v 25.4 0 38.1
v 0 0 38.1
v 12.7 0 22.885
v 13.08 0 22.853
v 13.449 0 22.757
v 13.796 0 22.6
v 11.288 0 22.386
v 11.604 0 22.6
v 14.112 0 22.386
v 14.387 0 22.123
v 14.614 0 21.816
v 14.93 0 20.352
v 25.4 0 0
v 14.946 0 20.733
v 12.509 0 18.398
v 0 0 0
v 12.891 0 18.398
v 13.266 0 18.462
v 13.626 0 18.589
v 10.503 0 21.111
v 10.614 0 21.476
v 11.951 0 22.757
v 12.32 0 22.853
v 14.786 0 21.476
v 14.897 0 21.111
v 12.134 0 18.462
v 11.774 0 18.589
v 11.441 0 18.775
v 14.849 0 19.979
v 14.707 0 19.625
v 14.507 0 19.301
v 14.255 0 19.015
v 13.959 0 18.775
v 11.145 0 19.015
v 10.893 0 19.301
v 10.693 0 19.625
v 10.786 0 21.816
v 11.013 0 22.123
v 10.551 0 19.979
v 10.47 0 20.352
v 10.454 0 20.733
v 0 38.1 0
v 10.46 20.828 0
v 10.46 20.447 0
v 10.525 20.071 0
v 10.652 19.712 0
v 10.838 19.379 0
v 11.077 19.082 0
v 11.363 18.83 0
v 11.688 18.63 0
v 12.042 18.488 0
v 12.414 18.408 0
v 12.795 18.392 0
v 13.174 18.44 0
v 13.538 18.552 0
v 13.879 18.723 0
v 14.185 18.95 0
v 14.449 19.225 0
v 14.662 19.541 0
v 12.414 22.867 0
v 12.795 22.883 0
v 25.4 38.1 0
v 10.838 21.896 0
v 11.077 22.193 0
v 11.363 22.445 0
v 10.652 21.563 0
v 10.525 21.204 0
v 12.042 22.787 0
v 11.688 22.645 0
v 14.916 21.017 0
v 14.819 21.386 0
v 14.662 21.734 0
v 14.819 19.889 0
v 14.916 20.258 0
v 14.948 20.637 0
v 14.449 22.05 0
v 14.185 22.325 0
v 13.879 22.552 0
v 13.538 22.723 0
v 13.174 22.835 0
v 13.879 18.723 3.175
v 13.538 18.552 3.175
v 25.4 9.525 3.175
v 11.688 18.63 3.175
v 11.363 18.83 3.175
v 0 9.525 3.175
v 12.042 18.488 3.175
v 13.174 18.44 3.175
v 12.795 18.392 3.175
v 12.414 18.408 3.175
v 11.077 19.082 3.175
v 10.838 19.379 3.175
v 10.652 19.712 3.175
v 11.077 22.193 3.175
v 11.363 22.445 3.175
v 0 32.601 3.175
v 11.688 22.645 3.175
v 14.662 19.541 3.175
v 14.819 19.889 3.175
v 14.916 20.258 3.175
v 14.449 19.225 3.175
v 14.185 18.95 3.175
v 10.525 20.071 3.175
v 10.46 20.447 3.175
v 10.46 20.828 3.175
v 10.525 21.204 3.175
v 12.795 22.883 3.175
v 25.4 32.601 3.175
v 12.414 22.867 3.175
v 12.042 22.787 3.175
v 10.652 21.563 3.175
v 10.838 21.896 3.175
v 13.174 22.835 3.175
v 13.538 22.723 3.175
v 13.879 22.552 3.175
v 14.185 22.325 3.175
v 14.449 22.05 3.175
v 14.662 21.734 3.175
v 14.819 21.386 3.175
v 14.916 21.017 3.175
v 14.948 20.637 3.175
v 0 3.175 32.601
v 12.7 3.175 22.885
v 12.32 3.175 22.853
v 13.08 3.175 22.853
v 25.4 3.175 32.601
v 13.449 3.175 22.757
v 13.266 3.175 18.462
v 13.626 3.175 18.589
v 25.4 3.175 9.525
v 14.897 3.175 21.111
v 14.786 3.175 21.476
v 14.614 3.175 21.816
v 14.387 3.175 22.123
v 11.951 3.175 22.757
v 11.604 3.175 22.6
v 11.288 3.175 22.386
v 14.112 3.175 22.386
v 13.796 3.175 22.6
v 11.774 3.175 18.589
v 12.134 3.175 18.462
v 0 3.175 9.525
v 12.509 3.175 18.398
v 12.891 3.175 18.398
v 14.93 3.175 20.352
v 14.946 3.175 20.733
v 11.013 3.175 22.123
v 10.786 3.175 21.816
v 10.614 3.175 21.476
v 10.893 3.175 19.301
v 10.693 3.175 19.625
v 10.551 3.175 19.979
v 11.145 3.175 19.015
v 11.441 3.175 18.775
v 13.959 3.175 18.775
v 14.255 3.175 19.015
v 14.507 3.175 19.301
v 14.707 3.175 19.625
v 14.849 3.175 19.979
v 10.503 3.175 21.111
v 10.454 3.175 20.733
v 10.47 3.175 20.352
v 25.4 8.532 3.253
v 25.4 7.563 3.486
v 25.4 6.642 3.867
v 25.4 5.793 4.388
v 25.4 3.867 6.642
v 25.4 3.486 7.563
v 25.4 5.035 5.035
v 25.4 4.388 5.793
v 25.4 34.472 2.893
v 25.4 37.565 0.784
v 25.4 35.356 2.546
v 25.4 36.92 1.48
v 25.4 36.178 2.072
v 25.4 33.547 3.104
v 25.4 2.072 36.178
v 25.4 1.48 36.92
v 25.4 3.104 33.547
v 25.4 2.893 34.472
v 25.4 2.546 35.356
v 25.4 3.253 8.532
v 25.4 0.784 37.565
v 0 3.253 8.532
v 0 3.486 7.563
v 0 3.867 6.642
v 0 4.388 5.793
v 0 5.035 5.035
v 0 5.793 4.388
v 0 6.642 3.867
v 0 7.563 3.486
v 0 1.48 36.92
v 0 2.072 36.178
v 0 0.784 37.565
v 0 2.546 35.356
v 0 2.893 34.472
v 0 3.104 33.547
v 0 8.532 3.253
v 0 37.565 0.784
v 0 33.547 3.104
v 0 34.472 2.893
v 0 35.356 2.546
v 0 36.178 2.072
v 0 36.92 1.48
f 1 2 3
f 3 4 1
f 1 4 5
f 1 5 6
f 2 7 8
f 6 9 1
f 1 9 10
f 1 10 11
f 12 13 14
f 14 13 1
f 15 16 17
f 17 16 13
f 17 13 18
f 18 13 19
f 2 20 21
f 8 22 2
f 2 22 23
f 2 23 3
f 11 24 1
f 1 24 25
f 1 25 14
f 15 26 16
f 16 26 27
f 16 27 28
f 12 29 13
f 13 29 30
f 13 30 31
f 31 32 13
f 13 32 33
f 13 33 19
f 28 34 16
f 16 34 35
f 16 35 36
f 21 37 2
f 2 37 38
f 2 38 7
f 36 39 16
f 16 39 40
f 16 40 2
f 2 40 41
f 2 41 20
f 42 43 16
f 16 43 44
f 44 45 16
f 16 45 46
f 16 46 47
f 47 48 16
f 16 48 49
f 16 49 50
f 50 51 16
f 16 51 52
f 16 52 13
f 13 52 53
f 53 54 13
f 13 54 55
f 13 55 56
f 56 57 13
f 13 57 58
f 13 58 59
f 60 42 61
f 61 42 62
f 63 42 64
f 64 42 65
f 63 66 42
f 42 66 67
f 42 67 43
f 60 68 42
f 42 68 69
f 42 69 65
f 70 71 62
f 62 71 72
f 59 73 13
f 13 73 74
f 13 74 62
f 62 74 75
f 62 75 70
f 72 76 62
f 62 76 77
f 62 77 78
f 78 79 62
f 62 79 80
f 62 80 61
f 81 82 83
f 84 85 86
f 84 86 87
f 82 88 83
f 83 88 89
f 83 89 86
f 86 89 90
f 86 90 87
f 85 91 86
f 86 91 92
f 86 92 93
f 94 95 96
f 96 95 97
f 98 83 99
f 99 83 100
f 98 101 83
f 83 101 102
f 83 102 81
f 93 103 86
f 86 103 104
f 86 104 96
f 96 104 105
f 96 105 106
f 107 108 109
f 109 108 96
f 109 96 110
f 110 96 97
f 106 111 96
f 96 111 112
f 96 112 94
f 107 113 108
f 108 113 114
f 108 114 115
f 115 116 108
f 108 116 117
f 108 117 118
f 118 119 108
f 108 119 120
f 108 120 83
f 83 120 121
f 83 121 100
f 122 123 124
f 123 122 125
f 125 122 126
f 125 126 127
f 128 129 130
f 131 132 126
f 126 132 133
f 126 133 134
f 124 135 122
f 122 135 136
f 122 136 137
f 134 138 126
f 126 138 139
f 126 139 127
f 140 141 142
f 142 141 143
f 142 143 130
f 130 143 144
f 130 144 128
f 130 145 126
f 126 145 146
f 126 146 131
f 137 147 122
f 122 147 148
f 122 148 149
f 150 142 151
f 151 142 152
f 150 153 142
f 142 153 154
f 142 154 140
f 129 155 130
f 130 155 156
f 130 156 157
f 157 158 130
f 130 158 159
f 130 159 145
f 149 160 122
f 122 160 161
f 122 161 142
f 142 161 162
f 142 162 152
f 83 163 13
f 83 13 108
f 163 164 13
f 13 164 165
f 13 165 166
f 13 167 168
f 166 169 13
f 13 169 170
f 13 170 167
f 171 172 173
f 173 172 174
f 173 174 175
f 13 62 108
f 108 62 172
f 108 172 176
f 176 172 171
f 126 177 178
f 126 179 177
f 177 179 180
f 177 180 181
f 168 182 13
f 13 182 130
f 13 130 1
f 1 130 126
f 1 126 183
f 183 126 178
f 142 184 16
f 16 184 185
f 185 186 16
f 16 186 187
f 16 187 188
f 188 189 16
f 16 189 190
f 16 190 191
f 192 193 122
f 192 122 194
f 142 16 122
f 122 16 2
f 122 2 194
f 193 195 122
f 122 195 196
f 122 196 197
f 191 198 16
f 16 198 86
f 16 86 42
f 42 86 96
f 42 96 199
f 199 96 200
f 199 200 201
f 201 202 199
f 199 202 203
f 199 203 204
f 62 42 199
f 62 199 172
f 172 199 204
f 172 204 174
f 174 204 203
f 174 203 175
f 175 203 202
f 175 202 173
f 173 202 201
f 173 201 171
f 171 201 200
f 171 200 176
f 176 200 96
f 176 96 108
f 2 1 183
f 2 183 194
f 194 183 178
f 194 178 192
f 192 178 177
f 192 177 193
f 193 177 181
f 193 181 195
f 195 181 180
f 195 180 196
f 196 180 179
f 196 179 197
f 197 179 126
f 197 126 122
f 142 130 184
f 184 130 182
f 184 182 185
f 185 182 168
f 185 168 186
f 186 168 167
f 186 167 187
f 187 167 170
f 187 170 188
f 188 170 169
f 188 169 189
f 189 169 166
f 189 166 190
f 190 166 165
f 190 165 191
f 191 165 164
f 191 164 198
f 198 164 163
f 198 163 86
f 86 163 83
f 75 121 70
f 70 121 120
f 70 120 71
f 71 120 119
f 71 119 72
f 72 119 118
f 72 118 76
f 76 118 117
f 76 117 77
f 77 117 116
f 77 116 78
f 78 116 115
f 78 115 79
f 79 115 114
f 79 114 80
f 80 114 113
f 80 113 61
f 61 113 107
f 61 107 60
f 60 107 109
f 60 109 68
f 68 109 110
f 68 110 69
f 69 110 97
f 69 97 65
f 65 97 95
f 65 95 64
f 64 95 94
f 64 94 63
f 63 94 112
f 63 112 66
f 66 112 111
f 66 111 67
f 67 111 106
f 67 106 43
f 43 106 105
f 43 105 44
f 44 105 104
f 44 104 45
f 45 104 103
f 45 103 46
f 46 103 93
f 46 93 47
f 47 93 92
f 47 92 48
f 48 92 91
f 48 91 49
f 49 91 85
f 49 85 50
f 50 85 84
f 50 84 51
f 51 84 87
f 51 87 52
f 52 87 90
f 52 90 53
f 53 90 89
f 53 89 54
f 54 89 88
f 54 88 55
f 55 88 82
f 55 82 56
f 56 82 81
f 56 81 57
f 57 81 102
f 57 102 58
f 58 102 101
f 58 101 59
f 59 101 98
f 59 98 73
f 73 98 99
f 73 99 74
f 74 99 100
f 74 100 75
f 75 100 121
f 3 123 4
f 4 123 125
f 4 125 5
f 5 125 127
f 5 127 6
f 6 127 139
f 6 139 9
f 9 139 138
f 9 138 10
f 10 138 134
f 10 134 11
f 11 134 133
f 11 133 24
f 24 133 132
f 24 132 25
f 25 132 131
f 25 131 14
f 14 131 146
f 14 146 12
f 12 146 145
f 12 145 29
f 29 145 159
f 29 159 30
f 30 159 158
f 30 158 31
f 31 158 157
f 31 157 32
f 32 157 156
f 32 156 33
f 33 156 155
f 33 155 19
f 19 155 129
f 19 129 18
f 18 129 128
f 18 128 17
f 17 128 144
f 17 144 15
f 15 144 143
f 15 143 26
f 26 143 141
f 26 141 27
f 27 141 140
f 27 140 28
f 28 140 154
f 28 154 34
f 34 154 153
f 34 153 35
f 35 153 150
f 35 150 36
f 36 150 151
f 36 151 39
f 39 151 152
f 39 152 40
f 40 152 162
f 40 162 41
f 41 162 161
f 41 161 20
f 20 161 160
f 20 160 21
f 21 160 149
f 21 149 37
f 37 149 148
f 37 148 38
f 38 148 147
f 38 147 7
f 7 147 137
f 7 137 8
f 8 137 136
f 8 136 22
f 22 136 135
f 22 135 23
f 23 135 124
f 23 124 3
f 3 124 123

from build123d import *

# Parameters (mm, degrees)
BOSS_EXTRUDE1_DEPTH   = 25.4
FILLET1_R             = 6.35
F_8_CLEARANCE_HOLE1_D = 4.4958
F_8_CLEARANCE_HOLE2_D = 4.4958


with BuildPart() as part:
    # Sketch1 → Boss-Extrude1 (new body)
    with BuildSketch(Plane(origin=(0, 0, 0), x_dir=(0, 0, -1), z_dir=(1, 0, 0))):
        Polygon((0, 0), (0, 38.1), (-3.175, 38.1), (-3.175, 3.175), (-38.1, 3.175), (-38.1, 0), align=None)
    extrude(amount=BOSS_EXTRUDE1_DEPTH)

    # Fillet1
    # the kernel refuses this fillet: 6.35 mm, written as the material it adds along each edge
    with BuildSketch(Plane(origin=(0, 3.175, 3.175), x_dir=(0, 1, 0), z_dir=(1, 0, 0))) as fillet1_piece_1:
        with BuildLine():
            CenterArc((FILLET1_R, FILLET1_R), FILLET1_R, 180, 90)
            Line((0, FILLET1_R), (0, 0))
            Line((0, 0), (FILLET1_R, 0))
        make_face()
    extrude(amount=25.4)
    # the kernel refuses this fillet: 6.35 mm, written as the material it takes off along each edge
    with BuildSketch(Plane(origin=(-13.748153285, 38.1, 3.175), x_dir=(0, 0, -1), z_dir=(1, 0, 0))) as fillet1_2_piece_1:
        with BuildLine():
            CenterArc((6.35, -5.499261314), FILLET1_R, 120, 60)
            Line((0, -5.499261314), (0, 0))
            Line((0, 0), (3.175, 0))
        make_face()
    extrude(amount=52.89630657, mode=Mode.SUBTRACT)
    with BuildSketch(Plane(origin=(-13.748153285, 3.175, 38.1), x_dir=(0, -1, 0), z_dir=(1, 0, 0))) as fillet1_2_piece_2:
        with BuildLine():
            CenterArc((6.35, 5.499261314), FILLET1_R, 180, 60)
            Line((0, 5.499261314), (0, 0))
            Line((0, 0), (3.175, 0))
        make_face()
    extrude(amount=52.89630657, mode=Mode.SUBTRACT)

    # #8 Clearance Hole1 (through all)
    with Locations(Plane.XY.offset(3.175)):
        with Locations((12.7, 20.6375)):
            Hole(F_8_CLEARANCE_HOLE1_D / 2)

    # #8 Clearance Hole2 (through all)
    with Locations(Plane(origin=(0, 3.175, 0), x_dir=(1, 0, 0), z_dir=(0, 1, 0))):
        with Locations((12.7, -20.6375)):
            Hole(F_8_CLEARANCE_HOLE2_D / 2)


solid = part.part
